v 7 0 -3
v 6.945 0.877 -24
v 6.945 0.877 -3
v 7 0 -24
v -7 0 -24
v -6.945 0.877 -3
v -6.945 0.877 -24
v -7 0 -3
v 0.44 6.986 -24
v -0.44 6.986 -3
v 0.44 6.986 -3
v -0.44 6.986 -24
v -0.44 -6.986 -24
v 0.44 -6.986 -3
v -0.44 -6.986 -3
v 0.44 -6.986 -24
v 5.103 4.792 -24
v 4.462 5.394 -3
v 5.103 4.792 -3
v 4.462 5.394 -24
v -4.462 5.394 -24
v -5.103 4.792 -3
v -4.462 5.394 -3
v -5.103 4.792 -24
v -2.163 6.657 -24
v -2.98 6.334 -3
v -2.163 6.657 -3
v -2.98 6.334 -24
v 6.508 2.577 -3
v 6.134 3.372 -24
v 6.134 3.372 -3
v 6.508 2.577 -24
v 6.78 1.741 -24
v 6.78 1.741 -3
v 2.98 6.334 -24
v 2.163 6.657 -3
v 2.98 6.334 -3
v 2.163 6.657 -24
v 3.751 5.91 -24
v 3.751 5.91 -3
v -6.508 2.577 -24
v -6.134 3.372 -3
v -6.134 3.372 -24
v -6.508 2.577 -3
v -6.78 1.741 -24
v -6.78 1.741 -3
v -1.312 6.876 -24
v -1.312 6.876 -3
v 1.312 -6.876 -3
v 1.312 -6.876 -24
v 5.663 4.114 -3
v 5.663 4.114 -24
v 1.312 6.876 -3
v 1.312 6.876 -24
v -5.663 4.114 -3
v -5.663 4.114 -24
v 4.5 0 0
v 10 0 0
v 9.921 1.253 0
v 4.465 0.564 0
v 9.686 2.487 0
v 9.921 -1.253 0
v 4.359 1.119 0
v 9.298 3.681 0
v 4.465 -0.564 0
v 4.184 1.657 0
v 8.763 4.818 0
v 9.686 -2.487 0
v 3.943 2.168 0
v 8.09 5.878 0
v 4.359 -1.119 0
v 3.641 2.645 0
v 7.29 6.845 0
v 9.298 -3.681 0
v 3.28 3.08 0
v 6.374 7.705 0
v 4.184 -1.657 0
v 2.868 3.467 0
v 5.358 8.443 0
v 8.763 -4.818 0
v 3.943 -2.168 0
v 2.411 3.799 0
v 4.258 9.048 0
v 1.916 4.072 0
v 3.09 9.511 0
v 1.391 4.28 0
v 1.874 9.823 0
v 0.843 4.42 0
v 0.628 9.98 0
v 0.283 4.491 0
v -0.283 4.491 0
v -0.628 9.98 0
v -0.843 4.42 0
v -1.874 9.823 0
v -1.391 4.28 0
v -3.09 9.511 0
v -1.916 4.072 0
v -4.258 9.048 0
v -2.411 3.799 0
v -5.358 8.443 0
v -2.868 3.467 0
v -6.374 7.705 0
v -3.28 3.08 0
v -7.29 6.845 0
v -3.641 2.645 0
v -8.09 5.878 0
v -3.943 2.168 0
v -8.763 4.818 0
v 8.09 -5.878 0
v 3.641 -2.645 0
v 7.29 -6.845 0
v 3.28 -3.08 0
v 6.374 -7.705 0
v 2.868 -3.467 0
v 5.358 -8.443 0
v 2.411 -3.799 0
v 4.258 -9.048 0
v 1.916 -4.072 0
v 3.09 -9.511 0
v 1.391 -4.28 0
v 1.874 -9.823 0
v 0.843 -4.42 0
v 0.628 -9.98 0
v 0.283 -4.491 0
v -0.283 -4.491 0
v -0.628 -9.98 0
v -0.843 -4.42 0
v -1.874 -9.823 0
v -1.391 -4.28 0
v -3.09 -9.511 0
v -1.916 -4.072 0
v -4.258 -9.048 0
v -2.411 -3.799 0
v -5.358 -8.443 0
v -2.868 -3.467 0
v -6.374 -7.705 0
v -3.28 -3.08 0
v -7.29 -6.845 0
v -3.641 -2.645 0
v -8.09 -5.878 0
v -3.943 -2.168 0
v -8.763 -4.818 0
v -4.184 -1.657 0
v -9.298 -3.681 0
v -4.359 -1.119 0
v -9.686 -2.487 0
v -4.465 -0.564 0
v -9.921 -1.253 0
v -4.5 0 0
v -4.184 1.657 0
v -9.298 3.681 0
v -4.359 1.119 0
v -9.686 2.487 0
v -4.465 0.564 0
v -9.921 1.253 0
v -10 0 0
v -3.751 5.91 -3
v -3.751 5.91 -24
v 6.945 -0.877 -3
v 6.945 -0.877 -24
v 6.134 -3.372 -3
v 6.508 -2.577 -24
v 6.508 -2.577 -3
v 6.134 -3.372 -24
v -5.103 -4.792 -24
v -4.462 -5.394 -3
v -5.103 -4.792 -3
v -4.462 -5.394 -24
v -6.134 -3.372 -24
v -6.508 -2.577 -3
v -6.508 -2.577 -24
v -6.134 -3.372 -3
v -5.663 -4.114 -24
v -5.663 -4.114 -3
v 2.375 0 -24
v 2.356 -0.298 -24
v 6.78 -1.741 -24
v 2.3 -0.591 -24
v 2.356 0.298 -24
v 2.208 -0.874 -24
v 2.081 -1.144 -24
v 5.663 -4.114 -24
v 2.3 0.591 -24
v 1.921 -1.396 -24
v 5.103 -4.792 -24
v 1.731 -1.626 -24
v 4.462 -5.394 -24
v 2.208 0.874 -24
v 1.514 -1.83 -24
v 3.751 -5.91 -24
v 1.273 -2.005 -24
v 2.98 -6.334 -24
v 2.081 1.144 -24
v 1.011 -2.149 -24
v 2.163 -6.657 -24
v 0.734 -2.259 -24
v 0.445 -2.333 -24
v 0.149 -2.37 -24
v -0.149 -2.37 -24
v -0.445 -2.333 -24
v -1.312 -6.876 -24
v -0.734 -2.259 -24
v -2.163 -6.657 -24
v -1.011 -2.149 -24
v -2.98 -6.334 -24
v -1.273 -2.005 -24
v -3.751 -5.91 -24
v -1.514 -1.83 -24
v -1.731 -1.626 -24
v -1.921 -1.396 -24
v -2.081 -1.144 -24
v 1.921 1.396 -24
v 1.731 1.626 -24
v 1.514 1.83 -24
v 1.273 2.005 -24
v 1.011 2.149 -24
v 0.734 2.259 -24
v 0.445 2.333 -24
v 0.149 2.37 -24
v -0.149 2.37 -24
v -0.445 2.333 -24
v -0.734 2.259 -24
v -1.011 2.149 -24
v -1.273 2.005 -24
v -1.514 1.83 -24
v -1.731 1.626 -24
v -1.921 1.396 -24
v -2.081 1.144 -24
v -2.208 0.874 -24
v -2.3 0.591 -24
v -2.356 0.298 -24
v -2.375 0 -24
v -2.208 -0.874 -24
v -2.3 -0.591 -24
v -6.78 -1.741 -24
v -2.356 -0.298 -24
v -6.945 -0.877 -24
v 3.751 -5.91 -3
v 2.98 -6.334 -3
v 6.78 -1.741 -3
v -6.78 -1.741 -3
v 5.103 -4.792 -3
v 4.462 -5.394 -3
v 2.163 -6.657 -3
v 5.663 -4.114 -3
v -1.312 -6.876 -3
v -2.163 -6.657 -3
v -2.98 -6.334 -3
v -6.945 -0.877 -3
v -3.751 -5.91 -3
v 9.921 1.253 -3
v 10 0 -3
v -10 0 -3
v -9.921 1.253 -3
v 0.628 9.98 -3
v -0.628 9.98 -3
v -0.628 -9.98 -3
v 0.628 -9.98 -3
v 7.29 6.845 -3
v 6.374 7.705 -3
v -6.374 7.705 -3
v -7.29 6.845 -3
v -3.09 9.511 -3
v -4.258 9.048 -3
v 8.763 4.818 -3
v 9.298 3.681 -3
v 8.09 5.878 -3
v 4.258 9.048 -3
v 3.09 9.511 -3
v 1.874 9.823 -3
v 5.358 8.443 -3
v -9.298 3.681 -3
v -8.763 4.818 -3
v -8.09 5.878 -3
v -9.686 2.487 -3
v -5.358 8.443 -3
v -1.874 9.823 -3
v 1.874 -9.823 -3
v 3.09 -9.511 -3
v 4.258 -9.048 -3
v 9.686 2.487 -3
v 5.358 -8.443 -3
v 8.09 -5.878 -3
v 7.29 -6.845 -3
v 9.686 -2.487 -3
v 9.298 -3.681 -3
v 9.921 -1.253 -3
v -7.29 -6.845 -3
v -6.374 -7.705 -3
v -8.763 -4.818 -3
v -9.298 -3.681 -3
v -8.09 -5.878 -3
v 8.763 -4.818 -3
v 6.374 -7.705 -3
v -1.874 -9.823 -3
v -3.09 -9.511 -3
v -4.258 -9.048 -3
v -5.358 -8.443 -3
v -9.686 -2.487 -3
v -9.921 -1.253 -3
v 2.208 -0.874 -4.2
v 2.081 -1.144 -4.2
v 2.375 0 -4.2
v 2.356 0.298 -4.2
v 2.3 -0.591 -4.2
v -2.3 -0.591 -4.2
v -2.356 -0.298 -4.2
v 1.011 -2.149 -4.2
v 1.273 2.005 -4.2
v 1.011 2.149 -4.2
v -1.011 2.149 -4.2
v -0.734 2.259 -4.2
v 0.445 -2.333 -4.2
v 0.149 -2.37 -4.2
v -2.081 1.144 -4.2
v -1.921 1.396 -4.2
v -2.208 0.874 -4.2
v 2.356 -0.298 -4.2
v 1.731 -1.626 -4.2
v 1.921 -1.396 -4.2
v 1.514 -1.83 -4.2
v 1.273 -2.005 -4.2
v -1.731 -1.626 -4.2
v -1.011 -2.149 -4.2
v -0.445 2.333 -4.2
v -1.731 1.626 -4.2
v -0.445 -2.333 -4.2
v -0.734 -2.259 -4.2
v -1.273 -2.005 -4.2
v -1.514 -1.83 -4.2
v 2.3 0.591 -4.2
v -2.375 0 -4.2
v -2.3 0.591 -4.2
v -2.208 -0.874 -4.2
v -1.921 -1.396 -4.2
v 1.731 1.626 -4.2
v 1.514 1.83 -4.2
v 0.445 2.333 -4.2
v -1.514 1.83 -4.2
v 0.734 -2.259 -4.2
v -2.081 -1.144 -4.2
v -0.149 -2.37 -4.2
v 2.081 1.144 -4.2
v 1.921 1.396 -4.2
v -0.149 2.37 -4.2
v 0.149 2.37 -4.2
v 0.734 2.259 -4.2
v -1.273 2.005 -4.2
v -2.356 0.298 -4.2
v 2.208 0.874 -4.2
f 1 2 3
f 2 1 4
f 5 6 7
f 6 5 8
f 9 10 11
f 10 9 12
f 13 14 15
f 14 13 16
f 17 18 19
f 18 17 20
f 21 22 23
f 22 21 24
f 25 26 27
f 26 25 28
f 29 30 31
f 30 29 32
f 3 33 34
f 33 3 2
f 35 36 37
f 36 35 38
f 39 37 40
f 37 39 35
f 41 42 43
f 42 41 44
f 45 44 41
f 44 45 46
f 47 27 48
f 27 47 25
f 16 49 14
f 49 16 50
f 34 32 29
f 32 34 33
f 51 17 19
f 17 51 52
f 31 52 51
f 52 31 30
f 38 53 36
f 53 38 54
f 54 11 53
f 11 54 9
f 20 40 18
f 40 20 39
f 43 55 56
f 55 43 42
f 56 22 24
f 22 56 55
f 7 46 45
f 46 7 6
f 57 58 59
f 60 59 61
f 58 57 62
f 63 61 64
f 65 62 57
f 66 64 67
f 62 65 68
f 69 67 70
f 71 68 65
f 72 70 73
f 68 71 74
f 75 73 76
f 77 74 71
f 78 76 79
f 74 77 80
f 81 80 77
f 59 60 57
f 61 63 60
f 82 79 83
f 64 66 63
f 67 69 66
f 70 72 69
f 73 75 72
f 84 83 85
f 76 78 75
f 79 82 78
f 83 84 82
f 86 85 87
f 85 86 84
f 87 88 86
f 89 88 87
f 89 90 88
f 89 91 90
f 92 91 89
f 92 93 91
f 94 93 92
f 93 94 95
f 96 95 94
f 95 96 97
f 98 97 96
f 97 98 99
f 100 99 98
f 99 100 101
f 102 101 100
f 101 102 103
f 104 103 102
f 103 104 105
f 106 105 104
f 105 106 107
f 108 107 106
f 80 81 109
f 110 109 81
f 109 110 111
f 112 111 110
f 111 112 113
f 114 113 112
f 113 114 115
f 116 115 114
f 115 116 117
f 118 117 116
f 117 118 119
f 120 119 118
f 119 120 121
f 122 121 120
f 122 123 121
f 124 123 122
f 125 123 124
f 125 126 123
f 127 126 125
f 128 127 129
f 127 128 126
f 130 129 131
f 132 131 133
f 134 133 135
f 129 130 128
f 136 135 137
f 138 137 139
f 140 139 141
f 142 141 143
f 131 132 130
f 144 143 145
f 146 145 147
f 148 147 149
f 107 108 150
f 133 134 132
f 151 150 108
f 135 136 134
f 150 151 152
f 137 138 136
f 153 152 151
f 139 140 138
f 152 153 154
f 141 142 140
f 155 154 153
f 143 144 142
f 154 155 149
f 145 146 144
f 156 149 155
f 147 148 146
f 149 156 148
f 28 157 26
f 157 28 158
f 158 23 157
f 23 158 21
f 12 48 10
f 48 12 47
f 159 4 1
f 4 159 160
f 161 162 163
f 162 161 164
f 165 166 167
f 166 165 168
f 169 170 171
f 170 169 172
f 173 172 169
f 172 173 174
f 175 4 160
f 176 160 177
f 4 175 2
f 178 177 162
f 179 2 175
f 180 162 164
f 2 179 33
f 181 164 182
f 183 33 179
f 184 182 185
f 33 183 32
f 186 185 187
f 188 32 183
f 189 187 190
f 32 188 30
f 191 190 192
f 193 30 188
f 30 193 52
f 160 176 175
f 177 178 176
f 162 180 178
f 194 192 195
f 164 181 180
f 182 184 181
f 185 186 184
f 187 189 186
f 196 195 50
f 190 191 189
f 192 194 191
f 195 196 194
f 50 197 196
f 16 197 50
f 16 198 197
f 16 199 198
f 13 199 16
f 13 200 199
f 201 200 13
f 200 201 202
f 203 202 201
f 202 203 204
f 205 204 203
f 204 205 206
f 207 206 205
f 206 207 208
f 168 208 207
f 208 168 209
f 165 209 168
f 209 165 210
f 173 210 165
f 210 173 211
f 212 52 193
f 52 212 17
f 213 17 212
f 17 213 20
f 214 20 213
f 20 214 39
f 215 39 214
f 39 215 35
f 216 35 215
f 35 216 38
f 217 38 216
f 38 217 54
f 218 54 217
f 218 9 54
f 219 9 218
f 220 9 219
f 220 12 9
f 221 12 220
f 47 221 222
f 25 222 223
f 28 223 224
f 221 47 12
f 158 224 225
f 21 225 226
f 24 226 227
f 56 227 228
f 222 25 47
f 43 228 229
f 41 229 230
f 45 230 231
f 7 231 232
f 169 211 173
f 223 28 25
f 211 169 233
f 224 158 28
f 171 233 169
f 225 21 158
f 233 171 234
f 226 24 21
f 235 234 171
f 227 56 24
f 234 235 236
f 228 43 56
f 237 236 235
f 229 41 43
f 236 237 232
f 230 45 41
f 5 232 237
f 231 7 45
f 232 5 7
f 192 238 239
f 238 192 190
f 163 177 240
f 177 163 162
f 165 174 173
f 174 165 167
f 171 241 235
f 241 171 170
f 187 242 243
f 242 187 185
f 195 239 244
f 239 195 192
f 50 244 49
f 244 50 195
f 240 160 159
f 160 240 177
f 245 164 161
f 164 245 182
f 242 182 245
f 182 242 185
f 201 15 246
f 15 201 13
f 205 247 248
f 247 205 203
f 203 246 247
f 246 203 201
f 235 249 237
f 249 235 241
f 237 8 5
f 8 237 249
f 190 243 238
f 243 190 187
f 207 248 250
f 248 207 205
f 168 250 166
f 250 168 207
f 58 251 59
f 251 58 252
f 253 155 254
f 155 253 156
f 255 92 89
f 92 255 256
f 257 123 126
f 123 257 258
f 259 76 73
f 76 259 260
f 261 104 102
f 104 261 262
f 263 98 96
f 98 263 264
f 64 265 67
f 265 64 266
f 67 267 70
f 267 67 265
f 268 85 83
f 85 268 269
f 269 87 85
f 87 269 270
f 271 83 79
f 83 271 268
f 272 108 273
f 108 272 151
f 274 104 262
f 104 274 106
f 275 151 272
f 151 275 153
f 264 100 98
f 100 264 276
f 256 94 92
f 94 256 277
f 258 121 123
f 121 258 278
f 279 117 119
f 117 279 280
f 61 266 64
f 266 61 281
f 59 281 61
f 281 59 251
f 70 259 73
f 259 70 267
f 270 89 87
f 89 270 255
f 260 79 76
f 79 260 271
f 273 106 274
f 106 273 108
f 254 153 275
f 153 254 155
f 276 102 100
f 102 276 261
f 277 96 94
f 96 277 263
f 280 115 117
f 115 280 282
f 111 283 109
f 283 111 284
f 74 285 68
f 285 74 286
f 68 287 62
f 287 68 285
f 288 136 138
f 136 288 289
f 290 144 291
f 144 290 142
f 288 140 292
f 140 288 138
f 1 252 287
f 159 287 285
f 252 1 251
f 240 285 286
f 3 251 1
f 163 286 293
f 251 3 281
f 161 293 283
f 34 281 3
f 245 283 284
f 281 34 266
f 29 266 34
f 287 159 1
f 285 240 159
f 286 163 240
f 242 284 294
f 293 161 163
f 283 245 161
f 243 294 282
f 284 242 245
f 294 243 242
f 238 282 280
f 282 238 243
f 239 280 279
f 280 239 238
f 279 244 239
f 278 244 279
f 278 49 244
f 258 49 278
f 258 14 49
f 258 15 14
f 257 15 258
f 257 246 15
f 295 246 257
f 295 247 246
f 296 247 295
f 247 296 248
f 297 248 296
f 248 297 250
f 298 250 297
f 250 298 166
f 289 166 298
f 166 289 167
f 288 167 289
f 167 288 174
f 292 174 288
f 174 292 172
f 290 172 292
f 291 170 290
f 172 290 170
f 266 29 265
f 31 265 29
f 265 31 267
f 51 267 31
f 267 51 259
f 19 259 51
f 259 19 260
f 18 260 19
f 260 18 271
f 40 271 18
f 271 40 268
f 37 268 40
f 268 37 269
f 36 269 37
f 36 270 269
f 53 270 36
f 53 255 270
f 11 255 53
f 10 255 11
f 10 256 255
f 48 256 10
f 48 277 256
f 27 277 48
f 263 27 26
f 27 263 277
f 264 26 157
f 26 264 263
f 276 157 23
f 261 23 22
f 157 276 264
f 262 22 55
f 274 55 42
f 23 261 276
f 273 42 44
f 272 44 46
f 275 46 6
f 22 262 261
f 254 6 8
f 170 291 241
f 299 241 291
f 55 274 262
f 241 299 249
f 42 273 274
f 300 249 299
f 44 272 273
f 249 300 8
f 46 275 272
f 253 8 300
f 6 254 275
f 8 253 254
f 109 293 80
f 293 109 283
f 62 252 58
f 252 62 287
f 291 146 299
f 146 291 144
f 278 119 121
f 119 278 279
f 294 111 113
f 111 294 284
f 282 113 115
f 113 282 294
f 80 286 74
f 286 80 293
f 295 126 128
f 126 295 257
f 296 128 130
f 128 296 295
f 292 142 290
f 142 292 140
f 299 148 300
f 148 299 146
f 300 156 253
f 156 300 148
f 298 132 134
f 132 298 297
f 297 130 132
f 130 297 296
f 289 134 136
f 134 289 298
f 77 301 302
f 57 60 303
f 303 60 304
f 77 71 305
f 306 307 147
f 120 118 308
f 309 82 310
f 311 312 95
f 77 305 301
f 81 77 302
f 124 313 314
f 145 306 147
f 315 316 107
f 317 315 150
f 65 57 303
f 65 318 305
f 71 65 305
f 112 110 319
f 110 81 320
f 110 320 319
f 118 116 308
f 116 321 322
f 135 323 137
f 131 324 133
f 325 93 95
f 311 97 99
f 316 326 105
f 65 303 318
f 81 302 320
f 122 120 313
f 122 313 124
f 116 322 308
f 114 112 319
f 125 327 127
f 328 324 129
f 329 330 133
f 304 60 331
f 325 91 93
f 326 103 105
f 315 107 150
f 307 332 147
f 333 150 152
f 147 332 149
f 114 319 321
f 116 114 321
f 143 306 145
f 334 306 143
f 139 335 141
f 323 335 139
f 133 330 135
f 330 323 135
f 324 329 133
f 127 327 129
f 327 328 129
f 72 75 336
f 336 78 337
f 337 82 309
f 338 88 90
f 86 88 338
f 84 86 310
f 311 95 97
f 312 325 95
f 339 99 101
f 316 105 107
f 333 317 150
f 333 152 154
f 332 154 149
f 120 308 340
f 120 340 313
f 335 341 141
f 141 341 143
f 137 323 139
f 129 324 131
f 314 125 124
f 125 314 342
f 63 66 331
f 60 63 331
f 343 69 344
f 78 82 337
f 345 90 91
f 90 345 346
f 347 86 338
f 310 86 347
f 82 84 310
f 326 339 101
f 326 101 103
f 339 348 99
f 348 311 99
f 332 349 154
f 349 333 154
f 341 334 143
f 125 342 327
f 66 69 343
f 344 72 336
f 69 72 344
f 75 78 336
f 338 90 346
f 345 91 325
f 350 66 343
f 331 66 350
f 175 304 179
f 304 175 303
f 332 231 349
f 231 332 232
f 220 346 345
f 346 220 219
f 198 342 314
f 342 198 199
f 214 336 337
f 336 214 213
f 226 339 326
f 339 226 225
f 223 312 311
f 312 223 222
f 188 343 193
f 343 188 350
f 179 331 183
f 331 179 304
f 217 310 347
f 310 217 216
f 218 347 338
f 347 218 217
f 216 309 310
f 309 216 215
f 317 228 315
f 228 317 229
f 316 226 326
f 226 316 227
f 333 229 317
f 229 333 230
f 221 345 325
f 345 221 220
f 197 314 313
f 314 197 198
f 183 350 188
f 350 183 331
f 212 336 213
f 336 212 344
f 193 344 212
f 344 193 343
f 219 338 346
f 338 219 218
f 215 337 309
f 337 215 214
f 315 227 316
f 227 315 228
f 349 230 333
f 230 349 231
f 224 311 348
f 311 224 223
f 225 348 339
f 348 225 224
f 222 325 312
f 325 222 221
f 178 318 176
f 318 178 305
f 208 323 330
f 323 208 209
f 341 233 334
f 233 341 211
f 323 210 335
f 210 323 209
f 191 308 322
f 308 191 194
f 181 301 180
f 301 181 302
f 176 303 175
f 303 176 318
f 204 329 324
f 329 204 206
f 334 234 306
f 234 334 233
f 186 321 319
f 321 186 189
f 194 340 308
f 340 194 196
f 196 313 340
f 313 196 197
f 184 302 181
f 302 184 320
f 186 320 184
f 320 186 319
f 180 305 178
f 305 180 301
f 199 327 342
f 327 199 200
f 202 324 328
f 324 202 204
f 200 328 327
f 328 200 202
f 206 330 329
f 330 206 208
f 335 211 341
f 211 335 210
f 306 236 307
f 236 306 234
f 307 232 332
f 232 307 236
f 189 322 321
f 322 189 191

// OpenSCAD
$fn = 50;


difference() {
	union() {
		translate(v = [0, 0, -24.0000000000]) {
			cylinder(h = 24, r = 7.0000000000);
		}
		translate(v = [0, 0, -3.0000000000]) {
			cylinder(h = 3, r = 10.0000000000);
		}
	}
	union() {
		translate(v = [0, 0, 0]) {
			rotate(a = [0, 0, 0]) {
				difference() {
					union() {
						#translate(v = [0, 0, -24.0000000000]) {
							cylinder(h = 24, r = 2.2500000000);
						}
						#translate(v = [0, 0, -4.2000000000]) {
							cylinder(h = 4.2000000000, r1 = 2.3750000000, r2 = 4.5000000000);
						}
						#translate(v = [0, 0, -24.0000000000]) {
							cylinder(h = 24, r = 2.3750000000);
						}
						#translate(v = [0, 0, -24.0000000000]) {
							cylinder(h = 24, r = 2.2500000000);
						}
					}
					union();
				}
			}
		}
	}
}
